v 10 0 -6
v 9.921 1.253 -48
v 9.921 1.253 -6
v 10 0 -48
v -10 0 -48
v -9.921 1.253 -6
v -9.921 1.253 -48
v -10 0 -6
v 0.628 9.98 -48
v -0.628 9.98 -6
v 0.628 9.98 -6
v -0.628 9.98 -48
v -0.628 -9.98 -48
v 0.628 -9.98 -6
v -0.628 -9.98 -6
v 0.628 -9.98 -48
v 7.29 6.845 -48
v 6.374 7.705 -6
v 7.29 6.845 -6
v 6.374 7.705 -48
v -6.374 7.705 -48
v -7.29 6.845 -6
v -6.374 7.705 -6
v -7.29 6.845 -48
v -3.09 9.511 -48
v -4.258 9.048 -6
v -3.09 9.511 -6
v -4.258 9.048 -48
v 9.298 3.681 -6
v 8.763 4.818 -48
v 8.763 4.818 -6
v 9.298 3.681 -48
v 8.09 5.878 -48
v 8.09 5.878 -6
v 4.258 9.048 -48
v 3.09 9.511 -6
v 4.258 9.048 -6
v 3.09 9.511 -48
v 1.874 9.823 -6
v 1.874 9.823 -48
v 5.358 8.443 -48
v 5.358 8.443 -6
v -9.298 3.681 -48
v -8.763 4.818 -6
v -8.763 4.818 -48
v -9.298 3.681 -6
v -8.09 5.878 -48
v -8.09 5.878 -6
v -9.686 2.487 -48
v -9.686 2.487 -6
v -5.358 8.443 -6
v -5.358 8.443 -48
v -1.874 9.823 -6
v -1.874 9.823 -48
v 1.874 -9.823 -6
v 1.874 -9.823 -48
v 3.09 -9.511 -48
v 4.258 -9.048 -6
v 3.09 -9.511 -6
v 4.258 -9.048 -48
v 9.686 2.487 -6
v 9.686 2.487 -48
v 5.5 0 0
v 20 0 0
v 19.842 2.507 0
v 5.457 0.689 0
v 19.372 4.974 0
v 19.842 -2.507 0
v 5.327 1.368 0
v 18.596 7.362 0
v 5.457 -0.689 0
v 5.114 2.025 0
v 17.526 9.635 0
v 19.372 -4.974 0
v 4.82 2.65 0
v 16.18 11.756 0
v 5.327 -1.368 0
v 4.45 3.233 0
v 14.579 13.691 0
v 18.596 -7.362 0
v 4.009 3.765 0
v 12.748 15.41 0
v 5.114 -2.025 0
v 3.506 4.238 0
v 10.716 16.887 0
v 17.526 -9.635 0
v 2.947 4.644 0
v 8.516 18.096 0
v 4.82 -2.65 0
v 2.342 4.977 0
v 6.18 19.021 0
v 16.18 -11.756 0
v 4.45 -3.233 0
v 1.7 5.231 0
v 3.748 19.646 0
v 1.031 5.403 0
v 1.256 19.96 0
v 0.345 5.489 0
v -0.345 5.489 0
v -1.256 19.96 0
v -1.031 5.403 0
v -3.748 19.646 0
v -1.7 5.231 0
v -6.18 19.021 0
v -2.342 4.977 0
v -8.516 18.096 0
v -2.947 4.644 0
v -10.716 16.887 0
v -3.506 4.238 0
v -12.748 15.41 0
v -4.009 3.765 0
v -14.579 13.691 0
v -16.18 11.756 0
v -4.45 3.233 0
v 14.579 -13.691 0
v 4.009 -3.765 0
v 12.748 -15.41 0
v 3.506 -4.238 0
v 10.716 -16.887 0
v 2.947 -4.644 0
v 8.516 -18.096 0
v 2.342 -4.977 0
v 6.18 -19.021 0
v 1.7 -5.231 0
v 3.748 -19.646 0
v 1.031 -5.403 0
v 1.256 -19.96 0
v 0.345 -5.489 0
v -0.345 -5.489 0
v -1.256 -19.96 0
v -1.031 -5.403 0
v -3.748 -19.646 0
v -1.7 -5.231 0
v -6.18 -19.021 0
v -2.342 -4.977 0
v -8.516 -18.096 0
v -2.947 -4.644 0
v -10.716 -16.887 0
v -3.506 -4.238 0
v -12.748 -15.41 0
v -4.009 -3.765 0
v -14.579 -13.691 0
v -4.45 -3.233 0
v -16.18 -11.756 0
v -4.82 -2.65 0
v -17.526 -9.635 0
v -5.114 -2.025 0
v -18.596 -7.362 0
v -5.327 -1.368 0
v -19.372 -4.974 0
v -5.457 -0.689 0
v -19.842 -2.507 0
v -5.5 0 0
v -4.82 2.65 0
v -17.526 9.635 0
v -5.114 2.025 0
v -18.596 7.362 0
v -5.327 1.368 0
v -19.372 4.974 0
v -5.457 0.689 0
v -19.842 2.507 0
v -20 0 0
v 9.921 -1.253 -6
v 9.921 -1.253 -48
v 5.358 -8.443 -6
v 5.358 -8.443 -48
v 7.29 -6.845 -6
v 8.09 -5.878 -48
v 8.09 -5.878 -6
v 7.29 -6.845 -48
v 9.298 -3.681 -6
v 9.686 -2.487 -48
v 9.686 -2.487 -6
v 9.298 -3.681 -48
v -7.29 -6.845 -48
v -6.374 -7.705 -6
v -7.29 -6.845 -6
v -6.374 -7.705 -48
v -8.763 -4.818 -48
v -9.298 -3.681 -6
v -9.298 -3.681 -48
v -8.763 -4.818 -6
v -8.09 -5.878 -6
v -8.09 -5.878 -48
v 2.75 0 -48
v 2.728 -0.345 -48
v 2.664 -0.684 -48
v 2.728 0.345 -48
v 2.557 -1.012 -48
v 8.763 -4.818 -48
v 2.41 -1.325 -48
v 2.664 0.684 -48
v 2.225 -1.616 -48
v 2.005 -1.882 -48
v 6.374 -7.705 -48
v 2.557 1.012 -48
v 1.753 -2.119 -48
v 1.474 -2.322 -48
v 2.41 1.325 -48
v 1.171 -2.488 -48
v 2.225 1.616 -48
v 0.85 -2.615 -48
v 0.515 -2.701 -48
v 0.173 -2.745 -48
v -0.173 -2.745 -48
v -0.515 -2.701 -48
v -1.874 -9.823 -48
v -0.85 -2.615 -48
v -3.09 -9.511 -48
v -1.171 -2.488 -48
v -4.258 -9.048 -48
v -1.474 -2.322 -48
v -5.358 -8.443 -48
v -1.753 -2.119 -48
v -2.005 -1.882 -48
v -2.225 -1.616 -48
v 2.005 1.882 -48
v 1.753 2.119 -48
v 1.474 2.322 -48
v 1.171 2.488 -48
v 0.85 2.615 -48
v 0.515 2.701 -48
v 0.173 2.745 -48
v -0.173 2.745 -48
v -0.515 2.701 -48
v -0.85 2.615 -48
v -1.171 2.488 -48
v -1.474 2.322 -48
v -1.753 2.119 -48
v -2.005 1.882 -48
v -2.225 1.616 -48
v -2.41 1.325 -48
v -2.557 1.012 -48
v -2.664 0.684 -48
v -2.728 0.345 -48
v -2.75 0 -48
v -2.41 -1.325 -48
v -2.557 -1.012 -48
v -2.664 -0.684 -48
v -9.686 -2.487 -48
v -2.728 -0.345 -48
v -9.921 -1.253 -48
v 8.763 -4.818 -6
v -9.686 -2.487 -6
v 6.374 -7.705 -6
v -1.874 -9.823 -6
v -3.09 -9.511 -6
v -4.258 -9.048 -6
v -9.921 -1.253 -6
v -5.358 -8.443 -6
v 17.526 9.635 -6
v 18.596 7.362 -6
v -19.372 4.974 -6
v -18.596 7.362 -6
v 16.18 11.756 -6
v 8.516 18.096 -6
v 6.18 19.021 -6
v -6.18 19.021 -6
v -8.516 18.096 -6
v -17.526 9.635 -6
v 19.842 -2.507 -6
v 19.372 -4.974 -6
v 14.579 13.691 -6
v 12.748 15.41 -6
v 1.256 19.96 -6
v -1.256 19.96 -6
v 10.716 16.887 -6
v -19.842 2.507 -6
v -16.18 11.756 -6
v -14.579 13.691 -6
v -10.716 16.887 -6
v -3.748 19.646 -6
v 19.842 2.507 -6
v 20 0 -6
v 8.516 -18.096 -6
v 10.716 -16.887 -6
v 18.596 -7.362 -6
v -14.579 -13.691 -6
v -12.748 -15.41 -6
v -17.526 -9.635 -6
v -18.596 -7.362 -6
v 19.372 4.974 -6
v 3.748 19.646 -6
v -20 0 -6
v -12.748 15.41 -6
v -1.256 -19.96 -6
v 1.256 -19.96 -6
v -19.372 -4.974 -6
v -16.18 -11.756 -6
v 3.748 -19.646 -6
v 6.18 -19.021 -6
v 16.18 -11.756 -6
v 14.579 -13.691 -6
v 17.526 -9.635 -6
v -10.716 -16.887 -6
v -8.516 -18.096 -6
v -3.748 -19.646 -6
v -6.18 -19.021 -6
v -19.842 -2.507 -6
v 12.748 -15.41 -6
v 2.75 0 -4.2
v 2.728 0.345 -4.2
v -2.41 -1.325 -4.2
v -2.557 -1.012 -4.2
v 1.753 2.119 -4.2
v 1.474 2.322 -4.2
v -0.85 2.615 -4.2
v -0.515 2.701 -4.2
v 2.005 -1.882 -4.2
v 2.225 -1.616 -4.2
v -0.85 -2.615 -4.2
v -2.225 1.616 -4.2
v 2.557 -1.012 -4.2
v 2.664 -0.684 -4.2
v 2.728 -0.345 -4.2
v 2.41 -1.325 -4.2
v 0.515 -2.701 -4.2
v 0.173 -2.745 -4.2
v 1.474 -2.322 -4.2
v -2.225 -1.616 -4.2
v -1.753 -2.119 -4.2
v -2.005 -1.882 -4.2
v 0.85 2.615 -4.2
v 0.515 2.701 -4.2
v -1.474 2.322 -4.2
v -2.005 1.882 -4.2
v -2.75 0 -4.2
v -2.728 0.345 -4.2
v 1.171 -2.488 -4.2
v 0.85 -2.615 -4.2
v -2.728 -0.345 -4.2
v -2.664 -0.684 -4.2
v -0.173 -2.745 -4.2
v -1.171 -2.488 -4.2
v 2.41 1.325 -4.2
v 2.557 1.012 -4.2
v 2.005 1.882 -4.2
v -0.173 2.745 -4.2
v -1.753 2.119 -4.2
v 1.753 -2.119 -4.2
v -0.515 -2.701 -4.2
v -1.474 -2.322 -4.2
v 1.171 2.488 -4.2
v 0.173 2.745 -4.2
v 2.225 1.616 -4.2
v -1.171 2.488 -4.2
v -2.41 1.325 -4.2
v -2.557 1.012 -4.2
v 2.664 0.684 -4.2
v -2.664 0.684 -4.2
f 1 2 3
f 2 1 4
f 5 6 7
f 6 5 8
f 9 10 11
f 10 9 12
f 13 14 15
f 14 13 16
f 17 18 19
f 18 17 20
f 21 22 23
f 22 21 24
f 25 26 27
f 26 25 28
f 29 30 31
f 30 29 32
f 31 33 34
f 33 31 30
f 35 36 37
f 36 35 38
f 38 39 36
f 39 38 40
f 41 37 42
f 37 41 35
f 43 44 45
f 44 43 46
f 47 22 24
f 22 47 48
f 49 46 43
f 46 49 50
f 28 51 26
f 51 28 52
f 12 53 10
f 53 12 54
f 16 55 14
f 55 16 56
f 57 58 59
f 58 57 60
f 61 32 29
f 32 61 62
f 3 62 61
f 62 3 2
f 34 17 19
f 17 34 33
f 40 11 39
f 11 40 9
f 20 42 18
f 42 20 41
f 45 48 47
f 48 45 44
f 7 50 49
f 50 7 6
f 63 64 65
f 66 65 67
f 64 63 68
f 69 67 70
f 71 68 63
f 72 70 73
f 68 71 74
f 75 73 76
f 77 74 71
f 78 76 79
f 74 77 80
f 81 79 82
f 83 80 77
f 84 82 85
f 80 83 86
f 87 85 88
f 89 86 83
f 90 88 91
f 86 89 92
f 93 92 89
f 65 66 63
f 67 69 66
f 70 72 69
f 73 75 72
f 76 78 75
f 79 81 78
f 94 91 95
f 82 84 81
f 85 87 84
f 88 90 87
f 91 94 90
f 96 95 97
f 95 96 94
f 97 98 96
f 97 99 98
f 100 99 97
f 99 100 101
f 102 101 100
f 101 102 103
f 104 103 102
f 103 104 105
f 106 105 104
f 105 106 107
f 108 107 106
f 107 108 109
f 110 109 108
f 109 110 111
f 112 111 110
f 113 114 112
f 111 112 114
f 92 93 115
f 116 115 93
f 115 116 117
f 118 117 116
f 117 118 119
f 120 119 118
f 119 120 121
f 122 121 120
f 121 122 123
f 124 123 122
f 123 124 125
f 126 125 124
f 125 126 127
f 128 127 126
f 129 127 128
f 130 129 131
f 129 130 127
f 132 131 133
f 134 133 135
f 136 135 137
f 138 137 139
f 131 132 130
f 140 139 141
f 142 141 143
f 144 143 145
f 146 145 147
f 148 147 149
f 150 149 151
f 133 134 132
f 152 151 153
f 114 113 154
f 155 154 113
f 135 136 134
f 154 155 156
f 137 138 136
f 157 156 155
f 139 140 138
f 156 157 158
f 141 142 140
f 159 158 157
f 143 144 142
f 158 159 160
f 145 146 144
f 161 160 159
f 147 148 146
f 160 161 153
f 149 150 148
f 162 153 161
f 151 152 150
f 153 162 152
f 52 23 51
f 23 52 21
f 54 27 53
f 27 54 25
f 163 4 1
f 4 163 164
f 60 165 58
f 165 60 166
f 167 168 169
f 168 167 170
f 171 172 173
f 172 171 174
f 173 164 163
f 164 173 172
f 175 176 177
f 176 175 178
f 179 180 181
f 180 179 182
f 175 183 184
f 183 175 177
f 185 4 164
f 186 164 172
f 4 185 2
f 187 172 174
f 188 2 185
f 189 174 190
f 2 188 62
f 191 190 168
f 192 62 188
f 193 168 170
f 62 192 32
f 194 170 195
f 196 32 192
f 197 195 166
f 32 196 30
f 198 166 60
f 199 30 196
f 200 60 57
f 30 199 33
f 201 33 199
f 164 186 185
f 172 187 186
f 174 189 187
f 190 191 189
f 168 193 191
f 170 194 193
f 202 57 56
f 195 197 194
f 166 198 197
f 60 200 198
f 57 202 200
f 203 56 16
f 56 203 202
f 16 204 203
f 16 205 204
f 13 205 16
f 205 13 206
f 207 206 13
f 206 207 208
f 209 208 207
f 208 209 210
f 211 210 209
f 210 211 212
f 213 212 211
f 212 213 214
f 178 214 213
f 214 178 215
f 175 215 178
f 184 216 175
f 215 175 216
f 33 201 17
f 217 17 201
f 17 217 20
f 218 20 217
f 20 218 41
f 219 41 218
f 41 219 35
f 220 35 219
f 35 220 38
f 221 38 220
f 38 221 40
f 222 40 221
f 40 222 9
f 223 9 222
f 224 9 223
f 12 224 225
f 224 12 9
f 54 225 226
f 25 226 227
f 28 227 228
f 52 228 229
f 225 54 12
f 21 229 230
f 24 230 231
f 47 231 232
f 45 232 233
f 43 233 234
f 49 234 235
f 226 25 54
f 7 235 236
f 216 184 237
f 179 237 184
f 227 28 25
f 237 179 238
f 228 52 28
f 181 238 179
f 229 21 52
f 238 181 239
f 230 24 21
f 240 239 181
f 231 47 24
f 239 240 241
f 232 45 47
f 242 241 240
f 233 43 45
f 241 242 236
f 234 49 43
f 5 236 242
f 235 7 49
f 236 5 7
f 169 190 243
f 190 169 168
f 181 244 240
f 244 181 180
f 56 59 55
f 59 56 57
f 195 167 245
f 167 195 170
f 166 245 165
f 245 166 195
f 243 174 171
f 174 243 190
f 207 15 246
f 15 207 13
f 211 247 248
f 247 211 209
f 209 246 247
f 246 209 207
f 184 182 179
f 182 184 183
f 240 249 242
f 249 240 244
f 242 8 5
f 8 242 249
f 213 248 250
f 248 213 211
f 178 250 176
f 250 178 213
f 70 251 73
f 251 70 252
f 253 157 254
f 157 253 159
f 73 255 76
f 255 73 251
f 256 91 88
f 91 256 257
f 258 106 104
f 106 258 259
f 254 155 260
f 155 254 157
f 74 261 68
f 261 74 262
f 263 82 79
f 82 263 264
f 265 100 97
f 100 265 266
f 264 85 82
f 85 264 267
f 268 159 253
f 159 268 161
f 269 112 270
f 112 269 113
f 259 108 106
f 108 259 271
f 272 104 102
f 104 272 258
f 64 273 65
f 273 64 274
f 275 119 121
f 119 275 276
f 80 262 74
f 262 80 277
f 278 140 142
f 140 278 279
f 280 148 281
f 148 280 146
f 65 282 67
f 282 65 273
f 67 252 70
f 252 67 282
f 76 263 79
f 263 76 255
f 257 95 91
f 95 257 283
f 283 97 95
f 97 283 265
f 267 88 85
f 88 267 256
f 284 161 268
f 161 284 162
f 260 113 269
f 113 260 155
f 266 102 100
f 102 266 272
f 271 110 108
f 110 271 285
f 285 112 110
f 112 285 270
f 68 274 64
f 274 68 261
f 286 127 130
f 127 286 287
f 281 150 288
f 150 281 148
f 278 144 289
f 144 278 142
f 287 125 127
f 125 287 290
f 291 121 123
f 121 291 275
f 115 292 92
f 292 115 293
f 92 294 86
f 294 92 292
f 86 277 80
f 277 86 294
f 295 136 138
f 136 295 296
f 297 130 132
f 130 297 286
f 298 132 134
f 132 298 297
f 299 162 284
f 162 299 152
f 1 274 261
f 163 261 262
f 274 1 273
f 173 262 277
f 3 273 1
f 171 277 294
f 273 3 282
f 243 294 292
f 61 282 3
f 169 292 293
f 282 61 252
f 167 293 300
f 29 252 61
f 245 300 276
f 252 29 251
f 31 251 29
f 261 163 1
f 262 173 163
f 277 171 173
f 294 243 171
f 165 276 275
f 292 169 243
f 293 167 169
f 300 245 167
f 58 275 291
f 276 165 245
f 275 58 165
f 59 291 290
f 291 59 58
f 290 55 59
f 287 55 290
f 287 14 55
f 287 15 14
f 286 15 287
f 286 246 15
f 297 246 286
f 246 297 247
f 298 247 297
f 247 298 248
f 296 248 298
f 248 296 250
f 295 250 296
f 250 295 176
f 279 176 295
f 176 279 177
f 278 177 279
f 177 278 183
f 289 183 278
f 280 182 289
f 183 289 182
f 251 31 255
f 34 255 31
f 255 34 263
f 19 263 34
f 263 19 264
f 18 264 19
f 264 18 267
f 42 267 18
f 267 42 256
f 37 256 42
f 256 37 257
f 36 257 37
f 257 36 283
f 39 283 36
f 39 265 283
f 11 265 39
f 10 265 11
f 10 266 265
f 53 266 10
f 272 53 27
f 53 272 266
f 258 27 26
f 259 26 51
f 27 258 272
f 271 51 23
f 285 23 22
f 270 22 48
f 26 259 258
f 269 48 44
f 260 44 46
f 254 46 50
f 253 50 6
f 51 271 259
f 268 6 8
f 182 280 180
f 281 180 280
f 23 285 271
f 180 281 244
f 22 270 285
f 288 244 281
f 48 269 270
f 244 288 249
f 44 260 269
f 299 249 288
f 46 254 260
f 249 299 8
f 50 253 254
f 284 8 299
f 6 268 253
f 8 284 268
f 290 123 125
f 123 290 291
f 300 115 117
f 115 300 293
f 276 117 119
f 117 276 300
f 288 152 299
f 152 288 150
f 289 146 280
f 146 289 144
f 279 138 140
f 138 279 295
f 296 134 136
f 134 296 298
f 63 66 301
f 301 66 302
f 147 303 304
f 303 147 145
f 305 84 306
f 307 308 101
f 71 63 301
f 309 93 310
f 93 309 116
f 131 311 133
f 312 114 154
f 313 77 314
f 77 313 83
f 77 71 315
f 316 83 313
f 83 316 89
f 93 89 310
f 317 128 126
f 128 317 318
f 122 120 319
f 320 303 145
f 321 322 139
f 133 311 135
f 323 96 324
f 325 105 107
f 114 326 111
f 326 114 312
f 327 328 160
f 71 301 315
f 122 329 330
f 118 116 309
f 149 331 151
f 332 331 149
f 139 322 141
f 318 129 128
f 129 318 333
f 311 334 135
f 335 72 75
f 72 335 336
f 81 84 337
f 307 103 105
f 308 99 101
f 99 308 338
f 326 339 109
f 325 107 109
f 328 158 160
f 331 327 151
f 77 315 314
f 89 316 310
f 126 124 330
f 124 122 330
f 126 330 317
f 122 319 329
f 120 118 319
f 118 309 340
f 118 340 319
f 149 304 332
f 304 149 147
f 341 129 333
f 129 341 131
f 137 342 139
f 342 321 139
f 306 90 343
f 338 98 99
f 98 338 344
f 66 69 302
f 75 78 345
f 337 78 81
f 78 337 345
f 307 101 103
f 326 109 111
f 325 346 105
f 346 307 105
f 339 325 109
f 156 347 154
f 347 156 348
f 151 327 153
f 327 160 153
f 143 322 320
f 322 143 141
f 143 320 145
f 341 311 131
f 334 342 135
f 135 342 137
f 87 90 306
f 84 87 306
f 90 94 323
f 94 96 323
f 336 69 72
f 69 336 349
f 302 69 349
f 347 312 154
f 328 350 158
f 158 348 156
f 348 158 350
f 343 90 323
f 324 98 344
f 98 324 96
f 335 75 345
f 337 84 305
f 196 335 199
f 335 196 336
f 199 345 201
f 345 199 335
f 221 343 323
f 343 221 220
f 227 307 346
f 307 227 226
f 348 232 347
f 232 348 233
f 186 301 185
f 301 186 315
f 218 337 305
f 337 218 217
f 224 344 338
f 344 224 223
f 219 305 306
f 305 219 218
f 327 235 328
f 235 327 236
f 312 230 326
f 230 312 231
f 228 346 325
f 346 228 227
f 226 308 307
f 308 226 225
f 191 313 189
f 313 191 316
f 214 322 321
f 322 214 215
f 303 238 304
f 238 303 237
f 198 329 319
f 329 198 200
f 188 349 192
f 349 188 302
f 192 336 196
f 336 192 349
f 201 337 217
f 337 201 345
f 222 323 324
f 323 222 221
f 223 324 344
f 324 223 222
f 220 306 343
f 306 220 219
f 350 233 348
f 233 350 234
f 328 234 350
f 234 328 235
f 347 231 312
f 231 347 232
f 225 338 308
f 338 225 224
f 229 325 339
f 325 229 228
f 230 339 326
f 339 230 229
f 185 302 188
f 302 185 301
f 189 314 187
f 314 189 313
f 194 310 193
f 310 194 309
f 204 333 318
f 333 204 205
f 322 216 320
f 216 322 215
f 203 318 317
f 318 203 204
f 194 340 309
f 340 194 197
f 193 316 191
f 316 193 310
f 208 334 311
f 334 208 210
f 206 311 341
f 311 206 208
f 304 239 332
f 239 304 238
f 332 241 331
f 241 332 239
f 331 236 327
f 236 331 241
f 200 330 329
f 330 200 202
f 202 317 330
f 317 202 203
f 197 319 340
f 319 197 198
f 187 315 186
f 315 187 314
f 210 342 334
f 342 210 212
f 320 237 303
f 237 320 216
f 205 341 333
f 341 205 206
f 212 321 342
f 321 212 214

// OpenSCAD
$fn = 50;


difference() {
	union() {
		translate(v = [0, 0, -48.0000000000]) {
			cylinder(h = 48, r = 10.0000000000);
		}
		translate(v = [0, 0, -6.0000000000]) {
			cylinder(h = 6, r = 20.0000000000);
		}
	}
	union() {
		translate(v = [0, 0, 0]) {
			rotate(a = [0, 0, 0]) {
				difference() {
					union() {
						#translate(v = [0, 0, -48.0000000000]) {
							cylinder(h = 48, r = 2.2500000000);
						}
						#translate(v = [0, 0, -4.2000000000]) {
							cylinder(h = 4.2000000000, r1 = 2.7500000000, r2 = 5.5000000000);
						}
						#translate(v = [0, 0, -48.0000000000]) {
							cylinder(h = 48, r = 2.7500000000);
						}
						#translate(v = [0, 0, -48.0000000000]) {
							cylinder(h = 48, r = 2.2500000000);
						}
					}
					union();
				}
			}
		}
	}
}
